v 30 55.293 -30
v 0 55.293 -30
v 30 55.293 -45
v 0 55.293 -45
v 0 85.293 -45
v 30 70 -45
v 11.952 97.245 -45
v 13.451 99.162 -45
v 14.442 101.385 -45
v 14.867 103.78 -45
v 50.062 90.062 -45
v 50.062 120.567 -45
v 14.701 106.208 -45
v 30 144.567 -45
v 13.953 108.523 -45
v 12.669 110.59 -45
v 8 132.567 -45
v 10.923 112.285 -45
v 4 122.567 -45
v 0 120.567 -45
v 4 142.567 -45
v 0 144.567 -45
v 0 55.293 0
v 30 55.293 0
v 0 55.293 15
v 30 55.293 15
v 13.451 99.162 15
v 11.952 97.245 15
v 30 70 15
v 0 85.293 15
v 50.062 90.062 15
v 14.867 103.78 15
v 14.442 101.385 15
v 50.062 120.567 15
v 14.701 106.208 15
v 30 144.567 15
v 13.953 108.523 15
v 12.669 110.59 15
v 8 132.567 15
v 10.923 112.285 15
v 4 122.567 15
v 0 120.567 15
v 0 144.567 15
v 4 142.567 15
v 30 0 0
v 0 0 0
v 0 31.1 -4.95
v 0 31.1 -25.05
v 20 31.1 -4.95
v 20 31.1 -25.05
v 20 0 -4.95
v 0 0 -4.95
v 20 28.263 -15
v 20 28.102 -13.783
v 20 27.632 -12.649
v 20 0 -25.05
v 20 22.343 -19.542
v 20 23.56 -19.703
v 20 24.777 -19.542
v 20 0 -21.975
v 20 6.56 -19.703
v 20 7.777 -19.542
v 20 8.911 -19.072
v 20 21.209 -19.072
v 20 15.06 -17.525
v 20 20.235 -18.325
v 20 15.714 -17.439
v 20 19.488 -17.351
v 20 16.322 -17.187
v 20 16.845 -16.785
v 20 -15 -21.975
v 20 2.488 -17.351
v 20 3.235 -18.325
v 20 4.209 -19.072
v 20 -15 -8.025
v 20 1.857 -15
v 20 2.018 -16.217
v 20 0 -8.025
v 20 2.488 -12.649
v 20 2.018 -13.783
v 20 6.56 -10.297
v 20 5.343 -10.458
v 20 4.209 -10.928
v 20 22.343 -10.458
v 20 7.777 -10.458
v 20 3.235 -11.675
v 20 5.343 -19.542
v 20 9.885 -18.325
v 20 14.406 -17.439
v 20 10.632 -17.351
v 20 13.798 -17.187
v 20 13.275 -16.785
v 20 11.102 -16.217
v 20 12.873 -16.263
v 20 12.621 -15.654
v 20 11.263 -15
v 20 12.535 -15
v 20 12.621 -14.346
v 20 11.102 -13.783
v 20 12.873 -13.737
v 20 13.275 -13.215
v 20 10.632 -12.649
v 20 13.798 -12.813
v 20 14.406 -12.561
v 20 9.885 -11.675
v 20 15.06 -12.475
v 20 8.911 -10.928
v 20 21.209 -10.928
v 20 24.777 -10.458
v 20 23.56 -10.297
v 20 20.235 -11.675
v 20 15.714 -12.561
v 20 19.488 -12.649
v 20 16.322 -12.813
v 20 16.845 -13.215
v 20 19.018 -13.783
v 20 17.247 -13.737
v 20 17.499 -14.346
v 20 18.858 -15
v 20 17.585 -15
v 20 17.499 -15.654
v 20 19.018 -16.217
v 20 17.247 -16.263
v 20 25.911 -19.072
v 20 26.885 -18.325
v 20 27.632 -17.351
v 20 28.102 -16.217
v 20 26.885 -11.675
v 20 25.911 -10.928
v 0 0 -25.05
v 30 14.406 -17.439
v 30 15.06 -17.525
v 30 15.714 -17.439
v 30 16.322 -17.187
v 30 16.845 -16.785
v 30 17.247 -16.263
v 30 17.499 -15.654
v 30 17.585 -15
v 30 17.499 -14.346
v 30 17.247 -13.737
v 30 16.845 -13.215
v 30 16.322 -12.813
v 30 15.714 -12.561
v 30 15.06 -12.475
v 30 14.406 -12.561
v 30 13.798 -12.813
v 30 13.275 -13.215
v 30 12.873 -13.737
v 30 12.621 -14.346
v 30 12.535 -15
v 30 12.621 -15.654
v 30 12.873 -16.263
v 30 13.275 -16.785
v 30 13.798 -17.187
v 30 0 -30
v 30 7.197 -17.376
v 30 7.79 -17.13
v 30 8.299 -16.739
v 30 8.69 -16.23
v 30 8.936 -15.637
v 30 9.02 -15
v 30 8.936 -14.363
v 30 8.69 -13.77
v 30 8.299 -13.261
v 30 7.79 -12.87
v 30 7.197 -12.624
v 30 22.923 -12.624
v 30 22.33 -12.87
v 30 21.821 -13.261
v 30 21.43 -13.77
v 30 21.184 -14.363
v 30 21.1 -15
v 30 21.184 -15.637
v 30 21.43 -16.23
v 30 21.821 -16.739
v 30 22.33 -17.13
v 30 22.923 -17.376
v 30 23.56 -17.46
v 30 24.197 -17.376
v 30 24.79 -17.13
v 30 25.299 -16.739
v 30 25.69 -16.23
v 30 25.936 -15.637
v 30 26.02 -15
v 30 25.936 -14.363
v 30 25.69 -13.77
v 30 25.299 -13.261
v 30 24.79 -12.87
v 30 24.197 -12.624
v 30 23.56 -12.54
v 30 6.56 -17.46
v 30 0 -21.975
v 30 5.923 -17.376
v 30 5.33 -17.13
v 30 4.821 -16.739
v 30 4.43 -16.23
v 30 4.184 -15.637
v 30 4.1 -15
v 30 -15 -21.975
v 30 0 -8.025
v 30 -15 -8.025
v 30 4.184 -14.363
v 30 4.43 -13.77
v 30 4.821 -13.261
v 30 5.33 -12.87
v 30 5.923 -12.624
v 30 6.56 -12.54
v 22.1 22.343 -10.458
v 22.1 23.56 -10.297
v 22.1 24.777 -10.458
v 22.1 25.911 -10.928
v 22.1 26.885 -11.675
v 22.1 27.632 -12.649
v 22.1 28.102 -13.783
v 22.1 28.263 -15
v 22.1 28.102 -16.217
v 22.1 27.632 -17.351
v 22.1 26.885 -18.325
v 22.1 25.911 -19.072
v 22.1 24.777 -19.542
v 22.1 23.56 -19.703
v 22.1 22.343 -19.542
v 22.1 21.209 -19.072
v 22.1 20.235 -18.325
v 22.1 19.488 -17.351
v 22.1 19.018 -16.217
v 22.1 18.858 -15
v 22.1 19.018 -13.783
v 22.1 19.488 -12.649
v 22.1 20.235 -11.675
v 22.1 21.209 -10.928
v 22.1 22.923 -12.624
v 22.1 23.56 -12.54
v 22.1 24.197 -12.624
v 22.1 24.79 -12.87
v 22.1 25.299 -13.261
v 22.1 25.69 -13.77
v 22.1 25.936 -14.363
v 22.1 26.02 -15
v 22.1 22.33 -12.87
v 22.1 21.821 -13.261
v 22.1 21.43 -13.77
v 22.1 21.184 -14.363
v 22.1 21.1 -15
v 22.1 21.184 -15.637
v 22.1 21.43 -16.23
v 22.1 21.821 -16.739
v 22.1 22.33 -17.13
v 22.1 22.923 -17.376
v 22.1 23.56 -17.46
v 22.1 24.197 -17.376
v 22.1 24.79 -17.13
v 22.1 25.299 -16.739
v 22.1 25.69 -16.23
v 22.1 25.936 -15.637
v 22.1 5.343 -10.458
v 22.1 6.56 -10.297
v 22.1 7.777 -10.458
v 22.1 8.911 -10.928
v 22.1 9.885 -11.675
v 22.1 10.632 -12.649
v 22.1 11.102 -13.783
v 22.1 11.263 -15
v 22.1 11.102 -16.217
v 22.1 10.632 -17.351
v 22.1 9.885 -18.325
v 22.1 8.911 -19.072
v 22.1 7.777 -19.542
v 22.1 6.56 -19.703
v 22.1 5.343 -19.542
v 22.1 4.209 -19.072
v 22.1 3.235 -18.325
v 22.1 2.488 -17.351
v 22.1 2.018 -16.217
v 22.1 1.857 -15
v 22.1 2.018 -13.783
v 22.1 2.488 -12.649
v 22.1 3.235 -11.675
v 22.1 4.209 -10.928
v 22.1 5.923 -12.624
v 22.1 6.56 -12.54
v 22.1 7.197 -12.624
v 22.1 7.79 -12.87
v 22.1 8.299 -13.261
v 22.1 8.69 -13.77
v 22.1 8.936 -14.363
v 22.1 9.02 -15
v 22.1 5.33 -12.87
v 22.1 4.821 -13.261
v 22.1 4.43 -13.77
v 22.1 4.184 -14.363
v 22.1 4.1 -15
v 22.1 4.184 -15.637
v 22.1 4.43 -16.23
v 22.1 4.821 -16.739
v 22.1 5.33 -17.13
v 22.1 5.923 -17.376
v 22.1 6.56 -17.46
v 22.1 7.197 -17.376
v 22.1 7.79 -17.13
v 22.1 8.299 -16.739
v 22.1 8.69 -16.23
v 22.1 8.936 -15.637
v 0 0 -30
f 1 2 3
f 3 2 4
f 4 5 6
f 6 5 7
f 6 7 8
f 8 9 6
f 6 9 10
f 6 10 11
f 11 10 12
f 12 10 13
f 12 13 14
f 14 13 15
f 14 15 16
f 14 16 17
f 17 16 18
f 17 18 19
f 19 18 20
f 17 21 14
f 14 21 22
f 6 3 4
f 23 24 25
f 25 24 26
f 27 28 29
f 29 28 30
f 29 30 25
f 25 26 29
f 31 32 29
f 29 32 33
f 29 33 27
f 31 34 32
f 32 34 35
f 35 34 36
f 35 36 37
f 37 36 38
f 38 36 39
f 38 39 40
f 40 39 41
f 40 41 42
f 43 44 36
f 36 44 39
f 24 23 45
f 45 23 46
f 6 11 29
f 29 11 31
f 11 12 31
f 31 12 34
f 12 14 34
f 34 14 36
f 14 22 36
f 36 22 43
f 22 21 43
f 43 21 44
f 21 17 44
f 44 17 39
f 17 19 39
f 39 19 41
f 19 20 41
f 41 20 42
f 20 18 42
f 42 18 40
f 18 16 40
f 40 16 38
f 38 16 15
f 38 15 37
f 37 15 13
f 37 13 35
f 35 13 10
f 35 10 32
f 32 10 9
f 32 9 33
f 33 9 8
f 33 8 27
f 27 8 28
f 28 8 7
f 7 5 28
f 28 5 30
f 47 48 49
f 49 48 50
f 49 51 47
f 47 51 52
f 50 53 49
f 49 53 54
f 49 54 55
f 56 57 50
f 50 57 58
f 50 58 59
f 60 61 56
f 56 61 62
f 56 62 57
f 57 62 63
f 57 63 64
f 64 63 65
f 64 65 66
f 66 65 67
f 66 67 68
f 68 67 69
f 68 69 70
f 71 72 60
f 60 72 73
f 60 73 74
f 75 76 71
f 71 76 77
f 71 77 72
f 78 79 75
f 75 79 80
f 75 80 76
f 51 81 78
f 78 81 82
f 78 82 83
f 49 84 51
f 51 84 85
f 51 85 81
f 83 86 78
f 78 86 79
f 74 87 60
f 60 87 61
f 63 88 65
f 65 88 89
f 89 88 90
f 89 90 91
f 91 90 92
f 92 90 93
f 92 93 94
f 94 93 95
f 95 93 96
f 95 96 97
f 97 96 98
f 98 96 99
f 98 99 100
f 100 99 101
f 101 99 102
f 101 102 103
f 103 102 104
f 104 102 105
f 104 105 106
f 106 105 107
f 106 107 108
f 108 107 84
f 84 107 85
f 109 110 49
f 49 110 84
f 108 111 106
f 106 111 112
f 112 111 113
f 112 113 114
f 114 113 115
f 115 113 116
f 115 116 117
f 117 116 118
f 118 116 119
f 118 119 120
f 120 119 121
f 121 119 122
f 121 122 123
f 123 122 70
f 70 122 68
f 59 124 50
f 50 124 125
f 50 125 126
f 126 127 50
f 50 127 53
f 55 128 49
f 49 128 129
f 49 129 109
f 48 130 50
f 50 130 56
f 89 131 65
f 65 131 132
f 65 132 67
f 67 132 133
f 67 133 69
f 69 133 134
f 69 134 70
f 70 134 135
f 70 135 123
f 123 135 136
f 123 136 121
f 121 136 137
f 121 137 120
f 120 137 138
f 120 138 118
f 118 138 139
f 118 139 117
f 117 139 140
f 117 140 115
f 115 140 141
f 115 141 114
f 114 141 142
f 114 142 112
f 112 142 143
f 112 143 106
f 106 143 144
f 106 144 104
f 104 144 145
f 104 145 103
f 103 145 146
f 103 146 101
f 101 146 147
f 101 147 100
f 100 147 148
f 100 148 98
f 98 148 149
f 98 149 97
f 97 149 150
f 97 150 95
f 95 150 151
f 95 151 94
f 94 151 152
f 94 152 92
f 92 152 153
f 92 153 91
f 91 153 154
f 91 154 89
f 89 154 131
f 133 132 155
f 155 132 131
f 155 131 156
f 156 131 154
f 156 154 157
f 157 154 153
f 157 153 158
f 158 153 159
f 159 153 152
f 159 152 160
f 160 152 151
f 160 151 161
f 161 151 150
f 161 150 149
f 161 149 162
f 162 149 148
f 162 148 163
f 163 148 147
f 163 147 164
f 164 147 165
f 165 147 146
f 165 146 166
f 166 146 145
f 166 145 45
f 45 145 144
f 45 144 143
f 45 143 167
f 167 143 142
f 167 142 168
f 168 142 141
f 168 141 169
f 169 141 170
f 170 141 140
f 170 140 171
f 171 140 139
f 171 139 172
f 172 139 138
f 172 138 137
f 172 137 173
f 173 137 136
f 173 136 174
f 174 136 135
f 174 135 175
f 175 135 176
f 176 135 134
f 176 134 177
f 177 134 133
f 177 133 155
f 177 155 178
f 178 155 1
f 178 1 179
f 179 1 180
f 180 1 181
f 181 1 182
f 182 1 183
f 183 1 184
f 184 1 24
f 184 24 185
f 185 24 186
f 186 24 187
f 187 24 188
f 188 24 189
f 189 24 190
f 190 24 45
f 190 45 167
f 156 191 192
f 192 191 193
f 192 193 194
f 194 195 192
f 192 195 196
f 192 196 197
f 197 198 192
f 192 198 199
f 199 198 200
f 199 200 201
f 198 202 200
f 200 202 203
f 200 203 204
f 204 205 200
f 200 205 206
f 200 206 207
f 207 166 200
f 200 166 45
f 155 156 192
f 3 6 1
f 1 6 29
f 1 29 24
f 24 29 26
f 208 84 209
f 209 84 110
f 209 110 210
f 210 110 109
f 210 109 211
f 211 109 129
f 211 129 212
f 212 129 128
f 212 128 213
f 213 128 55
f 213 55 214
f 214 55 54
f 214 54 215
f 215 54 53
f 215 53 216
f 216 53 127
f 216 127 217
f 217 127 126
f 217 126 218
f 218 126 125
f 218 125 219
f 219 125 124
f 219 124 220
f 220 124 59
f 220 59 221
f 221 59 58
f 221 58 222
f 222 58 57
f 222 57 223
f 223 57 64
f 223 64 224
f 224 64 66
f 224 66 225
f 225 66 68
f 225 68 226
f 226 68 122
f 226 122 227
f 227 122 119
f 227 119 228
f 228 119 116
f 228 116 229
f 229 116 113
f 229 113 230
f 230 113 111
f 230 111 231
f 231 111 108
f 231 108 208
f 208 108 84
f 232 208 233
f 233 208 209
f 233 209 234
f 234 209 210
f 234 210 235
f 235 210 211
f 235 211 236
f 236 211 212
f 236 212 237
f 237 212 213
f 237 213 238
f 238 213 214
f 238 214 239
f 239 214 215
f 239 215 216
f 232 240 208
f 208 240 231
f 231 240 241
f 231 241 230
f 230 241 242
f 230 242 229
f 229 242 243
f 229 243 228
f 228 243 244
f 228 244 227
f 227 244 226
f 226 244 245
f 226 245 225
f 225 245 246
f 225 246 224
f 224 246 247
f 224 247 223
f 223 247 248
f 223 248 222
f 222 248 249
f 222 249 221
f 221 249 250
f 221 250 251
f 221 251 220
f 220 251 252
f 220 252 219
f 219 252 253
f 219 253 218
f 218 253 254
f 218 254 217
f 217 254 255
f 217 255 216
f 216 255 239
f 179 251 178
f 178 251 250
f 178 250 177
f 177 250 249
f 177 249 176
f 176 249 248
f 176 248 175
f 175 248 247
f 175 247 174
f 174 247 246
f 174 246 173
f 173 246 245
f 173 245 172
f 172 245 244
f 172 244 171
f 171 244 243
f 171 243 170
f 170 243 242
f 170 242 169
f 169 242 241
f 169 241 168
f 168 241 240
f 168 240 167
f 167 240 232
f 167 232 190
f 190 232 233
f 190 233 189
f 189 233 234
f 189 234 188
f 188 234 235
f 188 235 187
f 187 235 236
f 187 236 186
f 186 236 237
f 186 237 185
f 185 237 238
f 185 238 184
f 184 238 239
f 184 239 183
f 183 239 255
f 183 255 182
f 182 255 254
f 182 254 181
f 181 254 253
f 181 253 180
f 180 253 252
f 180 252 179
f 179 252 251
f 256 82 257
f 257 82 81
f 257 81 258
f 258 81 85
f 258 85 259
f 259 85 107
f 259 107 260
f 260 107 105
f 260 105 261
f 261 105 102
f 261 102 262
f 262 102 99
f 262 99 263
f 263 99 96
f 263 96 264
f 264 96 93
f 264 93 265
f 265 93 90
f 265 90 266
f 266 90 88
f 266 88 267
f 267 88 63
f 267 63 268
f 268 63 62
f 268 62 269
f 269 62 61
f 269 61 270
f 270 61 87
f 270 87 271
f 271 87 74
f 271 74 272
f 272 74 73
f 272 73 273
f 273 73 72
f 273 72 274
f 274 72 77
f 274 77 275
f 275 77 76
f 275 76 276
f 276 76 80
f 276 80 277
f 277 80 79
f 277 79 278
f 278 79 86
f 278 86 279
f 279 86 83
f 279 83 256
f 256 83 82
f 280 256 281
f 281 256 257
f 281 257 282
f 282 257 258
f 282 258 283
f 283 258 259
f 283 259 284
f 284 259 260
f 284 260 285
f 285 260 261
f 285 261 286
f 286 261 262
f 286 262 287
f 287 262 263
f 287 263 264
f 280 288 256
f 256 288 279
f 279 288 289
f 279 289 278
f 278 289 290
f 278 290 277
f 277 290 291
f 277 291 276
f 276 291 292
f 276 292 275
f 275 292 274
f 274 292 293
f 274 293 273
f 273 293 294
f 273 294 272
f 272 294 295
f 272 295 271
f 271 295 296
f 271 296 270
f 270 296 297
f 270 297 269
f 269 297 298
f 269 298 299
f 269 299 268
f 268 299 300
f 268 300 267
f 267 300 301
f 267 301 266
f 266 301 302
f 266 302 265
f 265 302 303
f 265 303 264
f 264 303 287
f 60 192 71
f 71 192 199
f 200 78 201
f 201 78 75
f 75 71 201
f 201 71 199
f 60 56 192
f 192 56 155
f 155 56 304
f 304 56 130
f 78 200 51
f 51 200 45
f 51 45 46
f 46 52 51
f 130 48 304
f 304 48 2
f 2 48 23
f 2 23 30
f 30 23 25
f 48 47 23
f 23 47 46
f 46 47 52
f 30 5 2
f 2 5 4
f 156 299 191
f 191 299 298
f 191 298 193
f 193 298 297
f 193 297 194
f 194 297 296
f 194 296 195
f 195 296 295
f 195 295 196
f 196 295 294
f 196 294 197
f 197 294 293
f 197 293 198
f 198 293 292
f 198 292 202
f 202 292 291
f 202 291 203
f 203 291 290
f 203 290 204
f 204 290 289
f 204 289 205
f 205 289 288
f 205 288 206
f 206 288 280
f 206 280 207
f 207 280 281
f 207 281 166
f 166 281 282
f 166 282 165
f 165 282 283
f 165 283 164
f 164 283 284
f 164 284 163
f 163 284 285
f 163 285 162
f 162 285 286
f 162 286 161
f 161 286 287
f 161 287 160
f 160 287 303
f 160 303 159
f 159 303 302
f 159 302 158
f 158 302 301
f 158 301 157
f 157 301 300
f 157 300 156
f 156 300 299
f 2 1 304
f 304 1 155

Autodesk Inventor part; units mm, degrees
ref_plane "YZ Plane" through (0, 0, 0) normal (1, 0, 0) x (0, 1, 0)
ref_plane "XZ Plane" through (0, 0, 0) normal (0, 1, 0) x (-1, 0, 0)
sketch "Sketch1" plane through (0, 0, 0) normal (0, 0, 1) x (1, 0, 0)
  line L0 (0, 0) -> (25, 0)
  line L1 (25, 0) -> (25, 40)
  line L2 (25, 40) -> (0, 40)
  line L3 (0, 40) -> (0, 0)
  dimension "d1" = 25
  dimension "d2" = 40
  dimension "d3" = 25
extrude "Extrusion1" add sketch "Sketch1" against normal blind 30
sketch "Sketch2" plane through (25, 0, 0) normal (1, 0, 0) x (0, 0, -1)
  line L0 (0, 0) -> (30, 0) projected
  circle A0 centre (15, 6.56) radius 2.46
extrude "Extrusion2" cut sketch "Sketch2" against normal blind 30
sketch "Sketch3" plane through (0, 0, 0) normal (-1, 0, 0) x (0, 0, 1)
  line L0 (0, 0) -> (-30, 0) projected
  line L1 (-25.05, 0) -> (-4.95, 0)
  line L2 (-4.95, 0) -> (-4.95, 33.12)
  line L3 (-4.95, 33.12) -> (-25.05, 33.12)
  line L4 (-25.05, 33.12) -> (-25.05, 0)
  dimension "d11" = 20.1
extrude "Extrusion3" cut sketch "Sketch3" against normal blind 20
sketch "Sketch4" plane through (0, 0, 0) normal (0, -1, 0) x (1, 0, 0)
  line L0 (20, -4.95) -> (20, -25.05) projected
  line L1 (20, -15) -> (25, -15)
  line L2 (25, 0) -> (25, -30) projected
  line L3 (20, -8.025) -> (25, -8.025)
  line L4 (25, -8.025) -> (25, -21.975)
  line L5 (25, -21.975) -> (20, -21.975)
  line L6 (20, -21.975) -> (20, -8.025)
  line L7 (20, -8.025) -> (25, -21.975) construction
  line L8 (25, -8.025) -> (20, -21.975) construction
  line L9 (25, -12.54) -> (25, -17.46) projected
  point P0 (0, 0)
  point P1 (22.5, -15)
  dimension "d14" = 13.95
extrude "Extrusion4" add sketch "Sketch4" along normal blind 15
sketch "Sketch5" plane through (20, 0, 0) normal (-1, 0, 0) x (0, 0, 1)
  circle A0 centre (-15, 6.56) radius 2.46 projected
  circle A1 centre (-15, 6.56) radius 4.7025
  circle A2 centre (-15, 6.56) radius 2.46 projected
  circle A3 centre (-15, 6.56) radius 2.46
  point P0 (0, 0)
  dimension "d17" = 9.405
extrude "Extrusion5" cut sketch "Sketch5" against normal blind 2.1
sketch "Sketch6" plane through (25, 0, 0) normal (1, 0, 0) x (0, 0, -1)
  circle A0 centre (15, 6.56) radius 4.7025 projected
  line L0 (15, 6.56) -> (15, 23.56)
  circle A1 centre (15, 23.56) radius 2.46
  point P0 (0, 0)
  dimension "d20" = 17
  dimension "d21" = 4.92
extrude "Extrusion6" cut sketch "Sketch6" against normal blind 10 contours A1
sketch "Sketch7" plane through (20, 0, 0) normal (-1, 0, 0) x (0, 0, 1)
  circle A0 centre (-15, 23.56) radius 2.46 projected
  circle A1 centre (-15, 23.56) radius 4.7025
  point P0 (0, 0)
  dimension "d24" = 9.405
extrude "Extrusion7" cut sketch "Sketch7" against normal blind 2.1
sketch "Sketch9" plane through (25, 0, 0) normal (1, 0, 0) x (0, 0, -1)
  circle A0 centre (15, 6.56) radius 2.46 projected
  circle A1 centre (15, 6.56) radius 2.46
  circle A2 centre (15, 23.56) radius 2.46 projected
  circle A3 centre (15, 23.56) radius 2.46
  line L0 (30, 40) -> (30, 0) projected
  line L1 (30, 0) -> (30, 40)
  line L2 (30, 40) -> (0, 40)
  line L3 (0, 40) -> (0, 0)
  line L4 (0, 0) -> (8.025, 0) projected
  line L5 (21.975, 0) -> (21.975, -15)
  line L6 (21.975, -15) -> (8.025, -15)
  line L7 (8.025, -15) -> (8.025, 0)
  line L8 (0, 0) -> (8.025, 0)
  line L9 (21.975, 0) -> (30, 0)
extrude "Extrusion8" add sketch "Sketch9" along normal blind 5
sketch "Sketch10" plane through (0, 40, 0) normal (0, 1, 0) x (1, 0, 0)
  line L0 (0, 30) -> (30, 30) projected
  line L1 (30, 0) -> (0, 0) projected
  line L2 (0, 30) -> (30, 30)
  line L3 (30, 30) -> (30, 0)
  line L4 (30, 0) -> (0, 0)
  line L5 (0, 0) -> (0, 30)
extrude "Extrusion9" add sketch "Sketch10" along normal blind 30
sketch "Sketch12" plane through (30, 0, 0) normal (1, 0, 0) x (0, 0, -1)
  circle A0 centre (15, 6.56) radius 2.46 projected
  line L0 (15, 6.56) -> (15, 15.06)
  circle A1 centre (15, 15.06) radius 2.525
  point P0 (0, 0)
  dimension "d31" = 8.5
  dimension "d33" = 5.05
extrude "Extrusion10" cut sketch "Sketch12" against normal blind 30 contours A1
sketch "Sketch15" plane through (0, 0, -25.05) normal (-1, 0, 0) x (0, 0, 1)
  line L0 (0, 33.12) -> (20.1, 33.12) projected
  line L1 (20.1, 33.12) -> (20.1, 0) projected
  line L2 (0, 33.12) -> (20.1, 33.12)
  line L3 (20.1, 33.12) -> (20.1, 31.1)
  line L4 (20.1, 31.1) -> (0, 31.1)
  line L5 (0, 31.1) -> (0, 33.12)
  point P0 (25.05, 0)
  dimension "d57" = 2.02
extrude "Extrusion13" add sketch "Sketch15" against normal blind 20
sketch "Sketch17" plane through (0, 0, 0) normal (0, 0, 1) x (1, 0, 0)
  line L0 (0, 70) -> (30, 70) projected
  line L1 (30, 70) -> (50.0622, 90.0622)
  line L2 (30, 70) -> (80, 70) construction
  line L3 (11.9522, 97.2454) -> (0, 85.2932)
  line L4 (0, 70) -> (0, 85.2932)
  line L5 (0, 70) -> (0, 0) projected
  line L6 (0, 70) -> (30, 70)
  line L7 (10.923, 112.2849) -> (0, 120.567)
  line L8 (50.0622, 105.3553) -> (50.0622, 120.567)
  line L9 (50.0622, 105.3553) -> (50.0622, 90.0622)
  arc A0 (11.9522, 97.2454) -> (10.923, 112.2849) centre (4.8811, 104.3165) ccw
  line L10 (0, 144.567) -> (30, 144.567)
  line L11 (30, 144.567) -> (50.0622, 120.567)
  line L12 (4, 142.567) -> (0, 144.567)
  line L13 (4, 122.567) -> (0, 120.567)
  line L14 (4, 122.567) -> (8, 132.567)
  line L15 (8, 132.567) -> (4, 142.567)
  dimension "d61" = 45
  dimension "d62" = 32.0271
  dimension "d72" = 10
extrude "Extrusion14" add sketch "Sketch17" against normal blind 30
sketch "Sketch22" plane through (0, 0, 0) normal (0, 0, 1) x (1, 0, 0)
  line L0 (11.9522, 97.2454) -> (0, 85.2932) projected
  line L1 (0, 85.2932) -> (11.9522, 97.2454)
  arc A0 (11.9522, 97.2454) -> (10.923, 112.2849) centre (4.8811, 104.3165) ccw projected
  arc A1 (11.9522, 97.2454) -> (10.923, 112.2849) centre (4.8811, 104.3165) ccw
  line L2 (0, 120.567) -> (10.923, 112.2849) projected
  line L3 (10.923, 112.2849) -> (0, 120.567)
  line L4 (0, 120.567) -> (4, 122.567) projected
  line L5 (0, 120.567) -> (4, 122.567)
  line L6 (4, 122.567) -> (8, 132.567) projected
  line L7 (4, 122.567) -> (8, 132.567)
  line L8 (8, 132.567) -> (4, 142.567) projected
  line L9 (8, 132.567) -> (4, 142.567)
  line L10 (4, 142.567) -> (0, 144.567) projected
  line L11 (4, 142.567) -> (0, 144.567)
  line L12 (0, 144.567) -> (30, 144.567) projected
  line L13 (0, 144.567) -> (30, 144.567)
  line L14 (50.0622, 120.567) -> (30, 144.567) projected
  line L15 (30, 144.567) -> (50.0622, 120.567)
  line L16 (50.0622, 120.567) -> (50.0622, 90.0622) projected
  line L17 (50.0622, 120.567) -> (50.0622, 90.0622)
  line L18 (30, 70) -> (50.0622, 90.0622) projected
  line L19 (50.0622, 90.0622) -> (30, 70)
  line L20 (0, 0) -> (0, 85.2932) projected
  line L21 (0, 85.2932) -> (0, 55.2932)
  line L22 (0, 55.2932) -> (30, 55.2932)
  line L23 (30, 0) -> (30, 70) projected
  line L24 (30, 55.2932) -> (30, 70)
  dimension "d83" = 30
extrude "Extrusion15" add sketch "Sketch22" along normal blind 15
ref_plane "Work Plane1" through (0, 0, -15) normal (0, 0, 1) x (1, 0, 0)
mirror "Mirror1" about plane through (0, 0, -15) normal (0, 0, 1) of "Extrusion15"
properties part number "rec_c_20mm_x_60mm"
